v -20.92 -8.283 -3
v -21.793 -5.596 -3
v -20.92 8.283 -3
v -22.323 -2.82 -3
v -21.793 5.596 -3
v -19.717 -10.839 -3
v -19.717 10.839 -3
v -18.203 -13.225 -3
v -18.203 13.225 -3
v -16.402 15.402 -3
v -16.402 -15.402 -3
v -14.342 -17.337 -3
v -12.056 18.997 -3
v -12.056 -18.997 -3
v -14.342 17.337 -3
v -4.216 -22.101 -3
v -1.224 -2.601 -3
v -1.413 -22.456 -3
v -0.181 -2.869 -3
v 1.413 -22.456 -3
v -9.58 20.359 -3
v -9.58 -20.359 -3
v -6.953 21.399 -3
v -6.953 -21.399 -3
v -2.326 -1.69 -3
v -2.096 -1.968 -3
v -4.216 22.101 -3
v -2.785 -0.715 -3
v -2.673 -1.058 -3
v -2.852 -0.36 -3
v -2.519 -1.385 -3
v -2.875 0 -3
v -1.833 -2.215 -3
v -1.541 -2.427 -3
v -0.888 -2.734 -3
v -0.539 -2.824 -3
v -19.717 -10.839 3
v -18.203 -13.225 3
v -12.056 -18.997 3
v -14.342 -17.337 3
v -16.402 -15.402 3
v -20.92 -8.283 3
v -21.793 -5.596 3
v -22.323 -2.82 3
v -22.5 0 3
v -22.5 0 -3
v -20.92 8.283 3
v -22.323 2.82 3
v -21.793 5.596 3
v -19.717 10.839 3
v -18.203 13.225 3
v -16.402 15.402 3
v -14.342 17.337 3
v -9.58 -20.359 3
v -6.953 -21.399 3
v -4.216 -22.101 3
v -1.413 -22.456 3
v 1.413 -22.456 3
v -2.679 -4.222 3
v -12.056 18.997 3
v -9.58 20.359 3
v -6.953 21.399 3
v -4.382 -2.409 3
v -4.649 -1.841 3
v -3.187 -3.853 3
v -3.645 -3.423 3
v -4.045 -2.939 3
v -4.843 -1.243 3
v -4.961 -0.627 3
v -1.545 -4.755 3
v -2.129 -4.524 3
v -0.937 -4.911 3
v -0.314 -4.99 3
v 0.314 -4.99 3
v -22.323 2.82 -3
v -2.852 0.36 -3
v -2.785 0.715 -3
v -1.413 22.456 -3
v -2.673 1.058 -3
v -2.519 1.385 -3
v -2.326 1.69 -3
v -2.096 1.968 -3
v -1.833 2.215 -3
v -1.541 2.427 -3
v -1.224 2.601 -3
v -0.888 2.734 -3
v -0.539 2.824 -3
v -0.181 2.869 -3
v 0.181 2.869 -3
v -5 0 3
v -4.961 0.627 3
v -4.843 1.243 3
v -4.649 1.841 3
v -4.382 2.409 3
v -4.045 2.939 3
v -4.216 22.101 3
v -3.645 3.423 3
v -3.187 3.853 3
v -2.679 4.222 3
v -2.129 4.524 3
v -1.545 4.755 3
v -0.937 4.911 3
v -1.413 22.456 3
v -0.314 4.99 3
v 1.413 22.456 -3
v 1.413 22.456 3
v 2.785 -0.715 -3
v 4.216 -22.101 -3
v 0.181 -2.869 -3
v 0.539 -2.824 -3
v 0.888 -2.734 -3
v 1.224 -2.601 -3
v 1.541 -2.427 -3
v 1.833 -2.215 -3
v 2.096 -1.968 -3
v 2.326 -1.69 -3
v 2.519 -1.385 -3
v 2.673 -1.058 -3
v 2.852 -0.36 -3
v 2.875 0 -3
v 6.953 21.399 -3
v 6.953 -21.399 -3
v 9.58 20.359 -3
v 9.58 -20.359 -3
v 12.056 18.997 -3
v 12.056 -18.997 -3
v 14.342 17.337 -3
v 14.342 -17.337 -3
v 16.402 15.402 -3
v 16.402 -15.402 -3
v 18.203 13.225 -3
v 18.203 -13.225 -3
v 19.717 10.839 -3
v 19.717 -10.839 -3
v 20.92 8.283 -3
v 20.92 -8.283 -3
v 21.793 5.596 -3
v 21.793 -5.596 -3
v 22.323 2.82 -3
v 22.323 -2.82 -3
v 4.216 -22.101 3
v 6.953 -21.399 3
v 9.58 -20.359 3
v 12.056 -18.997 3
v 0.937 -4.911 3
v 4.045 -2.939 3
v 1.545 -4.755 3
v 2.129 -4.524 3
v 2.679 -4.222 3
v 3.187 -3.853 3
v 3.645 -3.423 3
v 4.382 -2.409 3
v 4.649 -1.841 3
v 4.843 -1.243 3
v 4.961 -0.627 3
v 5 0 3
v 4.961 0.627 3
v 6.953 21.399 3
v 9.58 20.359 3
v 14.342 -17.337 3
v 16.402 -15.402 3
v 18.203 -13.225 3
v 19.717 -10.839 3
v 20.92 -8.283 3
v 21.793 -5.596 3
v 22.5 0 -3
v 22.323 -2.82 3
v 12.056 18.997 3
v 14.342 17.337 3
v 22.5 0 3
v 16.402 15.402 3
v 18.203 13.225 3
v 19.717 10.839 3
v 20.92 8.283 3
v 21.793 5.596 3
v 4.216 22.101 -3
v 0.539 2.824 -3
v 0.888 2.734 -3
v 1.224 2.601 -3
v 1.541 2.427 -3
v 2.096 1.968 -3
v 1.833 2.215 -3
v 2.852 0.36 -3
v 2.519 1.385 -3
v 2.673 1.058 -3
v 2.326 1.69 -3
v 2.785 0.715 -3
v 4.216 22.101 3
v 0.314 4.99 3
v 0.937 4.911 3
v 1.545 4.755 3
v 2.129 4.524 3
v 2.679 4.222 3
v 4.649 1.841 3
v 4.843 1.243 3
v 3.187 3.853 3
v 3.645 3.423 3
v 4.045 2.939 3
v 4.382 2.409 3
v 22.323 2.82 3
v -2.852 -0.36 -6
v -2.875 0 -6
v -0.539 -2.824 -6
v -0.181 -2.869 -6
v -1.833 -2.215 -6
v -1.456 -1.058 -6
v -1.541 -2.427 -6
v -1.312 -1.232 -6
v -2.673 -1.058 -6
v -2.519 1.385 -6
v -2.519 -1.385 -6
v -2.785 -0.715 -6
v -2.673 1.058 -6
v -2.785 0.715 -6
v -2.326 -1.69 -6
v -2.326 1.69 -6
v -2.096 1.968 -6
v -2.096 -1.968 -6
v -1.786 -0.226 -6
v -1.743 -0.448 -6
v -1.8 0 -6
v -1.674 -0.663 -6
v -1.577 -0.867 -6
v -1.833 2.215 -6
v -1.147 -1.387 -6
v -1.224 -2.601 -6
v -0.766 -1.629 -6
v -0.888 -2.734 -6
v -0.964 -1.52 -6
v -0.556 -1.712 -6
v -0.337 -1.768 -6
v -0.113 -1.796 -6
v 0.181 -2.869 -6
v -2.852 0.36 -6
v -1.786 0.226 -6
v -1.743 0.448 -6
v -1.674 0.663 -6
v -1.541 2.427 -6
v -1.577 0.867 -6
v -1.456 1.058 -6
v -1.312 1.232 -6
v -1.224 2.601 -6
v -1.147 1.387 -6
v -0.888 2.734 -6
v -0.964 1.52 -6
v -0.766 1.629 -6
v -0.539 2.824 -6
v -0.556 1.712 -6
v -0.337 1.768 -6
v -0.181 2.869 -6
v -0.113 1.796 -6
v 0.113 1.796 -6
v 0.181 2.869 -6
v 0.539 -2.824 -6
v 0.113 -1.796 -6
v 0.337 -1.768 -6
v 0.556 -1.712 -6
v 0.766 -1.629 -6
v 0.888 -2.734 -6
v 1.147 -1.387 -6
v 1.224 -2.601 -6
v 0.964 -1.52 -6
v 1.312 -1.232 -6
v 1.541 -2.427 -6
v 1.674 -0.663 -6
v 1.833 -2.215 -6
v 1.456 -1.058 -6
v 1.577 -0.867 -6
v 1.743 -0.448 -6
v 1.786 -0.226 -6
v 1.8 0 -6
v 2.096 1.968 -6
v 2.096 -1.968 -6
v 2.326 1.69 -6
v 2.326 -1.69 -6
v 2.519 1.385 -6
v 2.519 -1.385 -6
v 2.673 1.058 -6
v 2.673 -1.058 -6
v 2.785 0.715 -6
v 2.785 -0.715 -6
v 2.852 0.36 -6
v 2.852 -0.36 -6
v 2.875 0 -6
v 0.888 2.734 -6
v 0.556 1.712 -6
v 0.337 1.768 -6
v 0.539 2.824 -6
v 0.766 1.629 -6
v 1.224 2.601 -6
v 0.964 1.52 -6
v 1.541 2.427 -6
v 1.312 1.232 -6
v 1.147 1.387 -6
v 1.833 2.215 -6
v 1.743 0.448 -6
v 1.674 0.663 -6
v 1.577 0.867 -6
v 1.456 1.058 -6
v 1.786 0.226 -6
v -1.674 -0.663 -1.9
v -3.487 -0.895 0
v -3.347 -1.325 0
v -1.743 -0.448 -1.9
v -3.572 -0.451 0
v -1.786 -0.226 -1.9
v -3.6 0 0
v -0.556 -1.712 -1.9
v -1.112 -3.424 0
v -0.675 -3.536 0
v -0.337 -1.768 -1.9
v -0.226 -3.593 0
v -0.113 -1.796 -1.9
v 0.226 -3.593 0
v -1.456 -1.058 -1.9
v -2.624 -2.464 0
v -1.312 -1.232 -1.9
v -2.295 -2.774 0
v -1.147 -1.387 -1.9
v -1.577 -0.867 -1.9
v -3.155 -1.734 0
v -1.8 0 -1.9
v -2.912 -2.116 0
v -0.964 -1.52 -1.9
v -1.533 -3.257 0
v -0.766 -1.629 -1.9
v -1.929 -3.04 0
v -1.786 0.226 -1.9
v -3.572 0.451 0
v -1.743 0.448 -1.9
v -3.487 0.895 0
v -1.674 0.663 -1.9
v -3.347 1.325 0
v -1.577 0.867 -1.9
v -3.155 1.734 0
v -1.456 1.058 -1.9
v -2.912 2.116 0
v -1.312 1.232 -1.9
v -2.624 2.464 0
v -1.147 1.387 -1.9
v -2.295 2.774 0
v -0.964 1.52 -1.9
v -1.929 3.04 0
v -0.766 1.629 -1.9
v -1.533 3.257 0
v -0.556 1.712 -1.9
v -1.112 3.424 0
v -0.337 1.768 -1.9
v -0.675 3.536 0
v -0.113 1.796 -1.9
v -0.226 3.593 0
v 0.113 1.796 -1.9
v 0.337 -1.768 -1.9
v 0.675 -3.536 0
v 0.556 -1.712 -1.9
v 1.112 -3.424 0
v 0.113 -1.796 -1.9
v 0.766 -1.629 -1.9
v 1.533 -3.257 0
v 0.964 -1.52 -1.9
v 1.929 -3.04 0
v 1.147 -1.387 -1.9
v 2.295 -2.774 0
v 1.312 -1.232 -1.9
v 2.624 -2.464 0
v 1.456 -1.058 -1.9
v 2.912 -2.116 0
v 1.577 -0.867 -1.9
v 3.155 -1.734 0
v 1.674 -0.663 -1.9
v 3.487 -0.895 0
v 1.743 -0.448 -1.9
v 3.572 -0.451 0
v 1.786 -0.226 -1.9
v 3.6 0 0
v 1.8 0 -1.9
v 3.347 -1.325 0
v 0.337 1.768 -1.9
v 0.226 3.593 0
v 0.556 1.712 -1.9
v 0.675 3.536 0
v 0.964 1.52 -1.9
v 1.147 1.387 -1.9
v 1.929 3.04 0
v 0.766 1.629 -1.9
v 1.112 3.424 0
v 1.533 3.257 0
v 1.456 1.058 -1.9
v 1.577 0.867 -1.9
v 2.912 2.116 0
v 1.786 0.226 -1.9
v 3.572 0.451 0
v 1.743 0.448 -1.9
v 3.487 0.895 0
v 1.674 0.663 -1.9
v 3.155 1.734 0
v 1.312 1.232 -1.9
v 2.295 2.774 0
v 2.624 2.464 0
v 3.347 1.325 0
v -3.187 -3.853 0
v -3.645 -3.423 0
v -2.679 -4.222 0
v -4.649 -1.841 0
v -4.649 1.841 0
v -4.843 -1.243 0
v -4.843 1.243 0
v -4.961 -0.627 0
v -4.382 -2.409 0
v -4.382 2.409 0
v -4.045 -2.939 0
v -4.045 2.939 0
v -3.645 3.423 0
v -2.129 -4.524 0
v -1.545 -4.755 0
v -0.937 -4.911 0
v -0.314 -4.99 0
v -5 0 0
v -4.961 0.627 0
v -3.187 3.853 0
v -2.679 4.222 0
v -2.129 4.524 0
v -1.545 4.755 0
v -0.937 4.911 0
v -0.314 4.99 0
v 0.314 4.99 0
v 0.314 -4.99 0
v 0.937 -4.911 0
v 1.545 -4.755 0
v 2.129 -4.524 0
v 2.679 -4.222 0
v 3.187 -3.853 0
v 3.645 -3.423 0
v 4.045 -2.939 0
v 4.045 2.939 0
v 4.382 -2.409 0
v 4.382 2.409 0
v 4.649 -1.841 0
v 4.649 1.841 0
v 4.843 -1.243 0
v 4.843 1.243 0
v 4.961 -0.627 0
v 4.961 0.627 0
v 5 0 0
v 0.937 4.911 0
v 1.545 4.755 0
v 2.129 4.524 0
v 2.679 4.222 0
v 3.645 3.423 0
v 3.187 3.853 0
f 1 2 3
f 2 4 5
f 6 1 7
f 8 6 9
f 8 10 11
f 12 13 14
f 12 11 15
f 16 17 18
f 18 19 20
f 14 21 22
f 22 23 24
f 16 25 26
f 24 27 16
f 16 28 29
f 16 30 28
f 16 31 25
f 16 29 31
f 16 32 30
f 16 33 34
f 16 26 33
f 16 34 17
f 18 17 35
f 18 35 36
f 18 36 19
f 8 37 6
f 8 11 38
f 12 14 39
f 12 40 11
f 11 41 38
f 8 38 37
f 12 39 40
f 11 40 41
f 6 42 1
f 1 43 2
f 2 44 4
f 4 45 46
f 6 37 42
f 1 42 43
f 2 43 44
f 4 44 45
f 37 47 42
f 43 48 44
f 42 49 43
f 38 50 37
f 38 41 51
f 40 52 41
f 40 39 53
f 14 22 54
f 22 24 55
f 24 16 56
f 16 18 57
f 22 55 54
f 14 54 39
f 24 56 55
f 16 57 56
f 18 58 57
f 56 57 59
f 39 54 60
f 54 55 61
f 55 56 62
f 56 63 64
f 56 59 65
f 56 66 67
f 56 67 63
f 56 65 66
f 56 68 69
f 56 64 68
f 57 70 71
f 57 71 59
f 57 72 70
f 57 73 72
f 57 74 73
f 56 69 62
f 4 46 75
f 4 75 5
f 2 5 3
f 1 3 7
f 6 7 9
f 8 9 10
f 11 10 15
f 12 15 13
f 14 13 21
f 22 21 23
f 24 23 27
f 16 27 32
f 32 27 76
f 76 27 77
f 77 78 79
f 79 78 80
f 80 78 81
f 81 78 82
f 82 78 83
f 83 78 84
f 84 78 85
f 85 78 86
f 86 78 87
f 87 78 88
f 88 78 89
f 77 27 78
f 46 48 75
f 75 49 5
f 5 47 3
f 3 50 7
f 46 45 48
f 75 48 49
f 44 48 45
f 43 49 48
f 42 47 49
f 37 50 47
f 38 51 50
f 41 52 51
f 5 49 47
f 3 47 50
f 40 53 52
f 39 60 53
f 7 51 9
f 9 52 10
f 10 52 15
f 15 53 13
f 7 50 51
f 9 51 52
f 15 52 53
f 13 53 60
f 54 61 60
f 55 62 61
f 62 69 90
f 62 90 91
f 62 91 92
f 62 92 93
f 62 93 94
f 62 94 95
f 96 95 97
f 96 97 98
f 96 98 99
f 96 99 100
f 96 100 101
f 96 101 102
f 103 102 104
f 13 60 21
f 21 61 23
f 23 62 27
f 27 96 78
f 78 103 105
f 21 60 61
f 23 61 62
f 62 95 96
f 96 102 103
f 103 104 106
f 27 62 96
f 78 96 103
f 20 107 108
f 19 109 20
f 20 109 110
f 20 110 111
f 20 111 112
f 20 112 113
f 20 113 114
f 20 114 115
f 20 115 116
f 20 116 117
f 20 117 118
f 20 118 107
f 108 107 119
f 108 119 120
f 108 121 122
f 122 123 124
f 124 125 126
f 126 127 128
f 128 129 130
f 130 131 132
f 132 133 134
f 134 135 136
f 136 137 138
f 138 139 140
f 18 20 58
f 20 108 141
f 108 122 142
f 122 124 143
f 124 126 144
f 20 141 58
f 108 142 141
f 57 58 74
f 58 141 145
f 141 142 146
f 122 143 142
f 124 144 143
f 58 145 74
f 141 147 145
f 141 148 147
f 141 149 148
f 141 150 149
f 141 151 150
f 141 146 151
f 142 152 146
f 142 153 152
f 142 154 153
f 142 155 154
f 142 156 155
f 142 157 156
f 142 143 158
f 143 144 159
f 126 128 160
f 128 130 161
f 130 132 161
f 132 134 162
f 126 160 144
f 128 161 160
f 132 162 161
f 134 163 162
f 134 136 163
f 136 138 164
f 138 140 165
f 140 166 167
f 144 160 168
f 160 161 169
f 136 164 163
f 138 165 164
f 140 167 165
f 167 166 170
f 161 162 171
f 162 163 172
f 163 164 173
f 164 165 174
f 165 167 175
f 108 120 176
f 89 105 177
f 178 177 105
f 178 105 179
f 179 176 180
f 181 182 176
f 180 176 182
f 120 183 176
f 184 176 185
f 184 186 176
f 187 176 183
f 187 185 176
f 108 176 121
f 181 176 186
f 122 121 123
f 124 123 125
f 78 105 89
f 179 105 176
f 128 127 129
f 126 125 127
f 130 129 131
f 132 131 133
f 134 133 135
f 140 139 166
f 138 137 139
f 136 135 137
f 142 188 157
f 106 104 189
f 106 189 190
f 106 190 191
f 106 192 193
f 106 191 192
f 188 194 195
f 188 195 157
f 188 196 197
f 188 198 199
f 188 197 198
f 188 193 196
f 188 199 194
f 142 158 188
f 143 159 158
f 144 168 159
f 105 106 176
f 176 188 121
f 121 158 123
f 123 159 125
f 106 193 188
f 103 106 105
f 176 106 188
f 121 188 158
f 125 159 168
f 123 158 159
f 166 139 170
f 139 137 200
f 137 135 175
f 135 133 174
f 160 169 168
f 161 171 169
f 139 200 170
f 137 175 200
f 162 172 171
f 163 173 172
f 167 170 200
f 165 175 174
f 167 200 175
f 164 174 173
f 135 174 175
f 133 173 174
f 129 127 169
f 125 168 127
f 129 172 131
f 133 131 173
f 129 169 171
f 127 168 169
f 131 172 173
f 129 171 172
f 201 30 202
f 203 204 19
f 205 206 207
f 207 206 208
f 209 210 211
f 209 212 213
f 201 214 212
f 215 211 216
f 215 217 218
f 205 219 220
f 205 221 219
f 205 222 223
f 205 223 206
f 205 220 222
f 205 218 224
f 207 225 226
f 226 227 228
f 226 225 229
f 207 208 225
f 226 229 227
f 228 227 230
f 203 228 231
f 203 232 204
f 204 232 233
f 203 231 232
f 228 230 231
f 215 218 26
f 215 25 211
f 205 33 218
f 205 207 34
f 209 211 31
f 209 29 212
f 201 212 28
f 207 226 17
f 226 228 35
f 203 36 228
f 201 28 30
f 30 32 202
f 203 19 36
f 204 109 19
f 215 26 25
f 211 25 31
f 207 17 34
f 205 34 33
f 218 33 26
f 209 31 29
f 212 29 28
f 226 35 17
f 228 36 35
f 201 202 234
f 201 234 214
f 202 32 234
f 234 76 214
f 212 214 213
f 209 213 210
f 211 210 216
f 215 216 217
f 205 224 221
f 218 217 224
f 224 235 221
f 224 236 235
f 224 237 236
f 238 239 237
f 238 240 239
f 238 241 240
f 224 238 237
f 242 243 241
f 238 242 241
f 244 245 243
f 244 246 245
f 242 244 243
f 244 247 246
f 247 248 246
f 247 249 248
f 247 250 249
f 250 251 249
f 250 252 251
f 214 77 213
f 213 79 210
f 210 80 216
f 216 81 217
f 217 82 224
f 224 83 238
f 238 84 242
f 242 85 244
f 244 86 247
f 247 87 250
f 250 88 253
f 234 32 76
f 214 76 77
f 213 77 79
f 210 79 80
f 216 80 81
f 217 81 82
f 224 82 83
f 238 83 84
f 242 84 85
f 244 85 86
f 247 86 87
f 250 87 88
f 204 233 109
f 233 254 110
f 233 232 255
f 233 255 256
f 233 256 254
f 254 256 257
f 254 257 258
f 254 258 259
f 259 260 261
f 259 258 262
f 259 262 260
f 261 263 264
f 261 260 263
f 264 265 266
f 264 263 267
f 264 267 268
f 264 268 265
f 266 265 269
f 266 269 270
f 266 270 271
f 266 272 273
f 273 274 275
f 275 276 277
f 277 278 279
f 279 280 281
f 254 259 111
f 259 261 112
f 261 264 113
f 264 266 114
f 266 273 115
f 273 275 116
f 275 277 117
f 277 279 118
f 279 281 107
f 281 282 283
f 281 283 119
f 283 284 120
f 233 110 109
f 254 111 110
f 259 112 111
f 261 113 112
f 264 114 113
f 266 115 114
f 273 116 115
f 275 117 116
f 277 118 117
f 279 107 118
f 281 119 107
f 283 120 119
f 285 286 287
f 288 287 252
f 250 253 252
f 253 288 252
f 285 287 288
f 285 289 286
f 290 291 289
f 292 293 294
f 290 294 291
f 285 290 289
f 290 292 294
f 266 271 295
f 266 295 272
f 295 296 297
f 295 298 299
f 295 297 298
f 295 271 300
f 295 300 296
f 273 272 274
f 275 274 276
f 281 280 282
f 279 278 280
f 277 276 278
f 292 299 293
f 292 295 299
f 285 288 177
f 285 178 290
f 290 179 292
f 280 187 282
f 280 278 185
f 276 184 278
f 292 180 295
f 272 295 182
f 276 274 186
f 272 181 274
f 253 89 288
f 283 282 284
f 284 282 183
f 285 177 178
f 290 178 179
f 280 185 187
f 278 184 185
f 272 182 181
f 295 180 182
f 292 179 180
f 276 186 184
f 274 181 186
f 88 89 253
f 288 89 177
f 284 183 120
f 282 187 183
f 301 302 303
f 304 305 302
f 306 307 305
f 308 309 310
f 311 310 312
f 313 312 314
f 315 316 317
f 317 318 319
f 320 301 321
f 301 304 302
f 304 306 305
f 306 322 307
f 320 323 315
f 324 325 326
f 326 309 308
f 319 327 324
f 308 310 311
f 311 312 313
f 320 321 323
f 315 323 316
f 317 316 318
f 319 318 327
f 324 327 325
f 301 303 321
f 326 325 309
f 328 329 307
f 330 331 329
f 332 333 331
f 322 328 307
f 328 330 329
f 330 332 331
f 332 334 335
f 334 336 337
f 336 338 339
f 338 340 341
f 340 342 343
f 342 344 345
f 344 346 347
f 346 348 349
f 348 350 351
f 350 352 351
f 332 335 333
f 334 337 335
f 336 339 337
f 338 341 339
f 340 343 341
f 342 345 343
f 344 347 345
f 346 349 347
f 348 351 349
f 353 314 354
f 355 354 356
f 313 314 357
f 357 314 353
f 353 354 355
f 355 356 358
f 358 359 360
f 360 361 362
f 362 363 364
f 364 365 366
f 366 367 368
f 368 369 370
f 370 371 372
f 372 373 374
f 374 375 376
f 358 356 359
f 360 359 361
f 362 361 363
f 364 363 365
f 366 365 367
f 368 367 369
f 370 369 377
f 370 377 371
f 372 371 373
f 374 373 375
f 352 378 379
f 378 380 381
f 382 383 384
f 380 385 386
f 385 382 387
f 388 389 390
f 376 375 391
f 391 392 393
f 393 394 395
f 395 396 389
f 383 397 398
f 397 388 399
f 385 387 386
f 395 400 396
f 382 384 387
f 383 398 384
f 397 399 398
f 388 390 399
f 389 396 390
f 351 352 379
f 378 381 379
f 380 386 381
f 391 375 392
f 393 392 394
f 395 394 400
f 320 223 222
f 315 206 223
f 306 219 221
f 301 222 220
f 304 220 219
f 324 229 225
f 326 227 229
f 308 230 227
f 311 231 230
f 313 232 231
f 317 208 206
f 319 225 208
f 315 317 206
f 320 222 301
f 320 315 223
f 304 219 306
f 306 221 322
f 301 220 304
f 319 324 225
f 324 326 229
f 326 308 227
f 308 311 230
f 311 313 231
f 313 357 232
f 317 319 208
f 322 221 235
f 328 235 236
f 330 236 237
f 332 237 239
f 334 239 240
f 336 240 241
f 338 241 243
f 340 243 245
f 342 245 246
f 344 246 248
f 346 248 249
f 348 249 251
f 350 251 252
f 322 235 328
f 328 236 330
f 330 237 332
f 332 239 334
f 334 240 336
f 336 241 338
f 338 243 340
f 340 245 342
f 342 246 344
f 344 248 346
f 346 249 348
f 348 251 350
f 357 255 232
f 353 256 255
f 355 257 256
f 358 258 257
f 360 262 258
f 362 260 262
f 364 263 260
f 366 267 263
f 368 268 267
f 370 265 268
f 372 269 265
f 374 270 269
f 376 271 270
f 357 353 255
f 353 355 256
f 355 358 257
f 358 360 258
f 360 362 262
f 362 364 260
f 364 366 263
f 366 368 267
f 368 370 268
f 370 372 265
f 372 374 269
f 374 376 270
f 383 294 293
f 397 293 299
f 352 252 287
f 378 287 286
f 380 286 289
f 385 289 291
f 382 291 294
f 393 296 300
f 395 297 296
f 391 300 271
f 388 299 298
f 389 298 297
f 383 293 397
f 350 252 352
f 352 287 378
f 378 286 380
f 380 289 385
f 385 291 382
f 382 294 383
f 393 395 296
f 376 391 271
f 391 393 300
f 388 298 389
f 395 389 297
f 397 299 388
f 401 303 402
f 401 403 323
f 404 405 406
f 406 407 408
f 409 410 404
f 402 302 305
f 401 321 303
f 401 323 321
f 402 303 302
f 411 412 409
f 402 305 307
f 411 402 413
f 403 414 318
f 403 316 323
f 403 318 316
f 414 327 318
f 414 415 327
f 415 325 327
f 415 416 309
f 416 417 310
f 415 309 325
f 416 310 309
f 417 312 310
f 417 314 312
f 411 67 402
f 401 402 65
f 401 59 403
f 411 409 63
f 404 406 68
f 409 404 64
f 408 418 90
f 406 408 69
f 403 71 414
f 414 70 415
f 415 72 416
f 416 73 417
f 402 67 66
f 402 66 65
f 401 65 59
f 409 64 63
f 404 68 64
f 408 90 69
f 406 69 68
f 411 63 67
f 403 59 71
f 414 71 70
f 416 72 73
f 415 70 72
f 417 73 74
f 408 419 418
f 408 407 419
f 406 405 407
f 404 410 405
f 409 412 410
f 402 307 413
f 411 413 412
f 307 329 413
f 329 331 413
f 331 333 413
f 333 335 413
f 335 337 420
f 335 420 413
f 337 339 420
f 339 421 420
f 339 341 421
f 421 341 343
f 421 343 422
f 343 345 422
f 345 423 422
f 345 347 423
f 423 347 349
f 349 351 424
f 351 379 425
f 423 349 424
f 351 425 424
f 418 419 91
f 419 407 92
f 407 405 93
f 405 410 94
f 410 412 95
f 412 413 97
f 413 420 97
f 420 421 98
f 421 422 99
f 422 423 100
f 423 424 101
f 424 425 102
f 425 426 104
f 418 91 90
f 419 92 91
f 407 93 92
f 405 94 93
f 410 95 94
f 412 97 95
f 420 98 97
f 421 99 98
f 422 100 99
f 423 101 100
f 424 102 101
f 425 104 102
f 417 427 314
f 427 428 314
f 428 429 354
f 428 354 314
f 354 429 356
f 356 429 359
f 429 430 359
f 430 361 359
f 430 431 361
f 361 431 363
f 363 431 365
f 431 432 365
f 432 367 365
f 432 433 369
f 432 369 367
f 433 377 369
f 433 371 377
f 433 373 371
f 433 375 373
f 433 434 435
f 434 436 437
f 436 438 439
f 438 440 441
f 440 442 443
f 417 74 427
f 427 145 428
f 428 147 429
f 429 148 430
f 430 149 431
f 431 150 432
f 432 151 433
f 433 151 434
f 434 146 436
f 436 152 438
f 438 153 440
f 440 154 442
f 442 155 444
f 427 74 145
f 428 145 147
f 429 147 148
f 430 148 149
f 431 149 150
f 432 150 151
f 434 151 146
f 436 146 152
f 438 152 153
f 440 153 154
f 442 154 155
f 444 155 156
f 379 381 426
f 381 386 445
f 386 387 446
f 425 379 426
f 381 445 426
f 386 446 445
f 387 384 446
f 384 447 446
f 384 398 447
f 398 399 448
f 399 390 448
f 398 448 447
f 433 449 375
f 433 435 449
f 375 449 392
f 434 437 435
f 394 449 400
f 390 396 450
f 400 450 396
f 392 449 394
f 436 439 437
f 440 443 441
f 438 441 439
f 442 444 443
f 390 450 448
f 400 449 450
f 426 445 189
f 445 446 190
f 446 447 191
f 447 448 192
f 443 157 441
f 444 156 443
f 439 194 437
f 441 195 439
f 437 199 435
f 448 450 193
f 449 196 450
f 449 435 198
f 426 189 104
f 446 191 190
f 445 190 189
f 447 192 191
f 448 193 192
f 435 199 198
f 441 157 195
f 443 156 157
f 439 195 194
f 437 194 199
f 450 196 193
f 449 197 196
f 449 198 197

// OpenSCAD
$fn = 50;


difference() {
	union() {
		translate(v = [0, 0, -3.0000000000]) {
			cylinder(h = 6, r = 22.5000000000);
		}
		#translate(v = [0, 0, -6.0000000000]) {
			cylinder(h = 6, r = 2.8750000000);
		}
	}
	union() {
		translate(v = [0, 0, 0]) {
			rotate(a = [0, 0, 0]) {
				difference() {
					union() {
						translate(v = [0, 0, -6.0000000000]) {
							cylinder(h = 6, r = 1.5000000000);
						}
						translate(v = [0, 0, -1.9000000000]) {
							cylinder(h = 1.9000000000, r1 = 1.8000000000, r2 = 3.6000000000);
						}
						translate(v = [0, 0, -6.0000000000]) {
							cylinder(h = 6, r = 1.8000000000);
						}
						translate(v = [0, 0, -6.0000000000]) {
							cylinder(h = 6, r = 1.5000000000);
						}
					}
					union();
				}
			}
		}
		#cylinder(h = 3, r = 5.0000000000);
	}
}
